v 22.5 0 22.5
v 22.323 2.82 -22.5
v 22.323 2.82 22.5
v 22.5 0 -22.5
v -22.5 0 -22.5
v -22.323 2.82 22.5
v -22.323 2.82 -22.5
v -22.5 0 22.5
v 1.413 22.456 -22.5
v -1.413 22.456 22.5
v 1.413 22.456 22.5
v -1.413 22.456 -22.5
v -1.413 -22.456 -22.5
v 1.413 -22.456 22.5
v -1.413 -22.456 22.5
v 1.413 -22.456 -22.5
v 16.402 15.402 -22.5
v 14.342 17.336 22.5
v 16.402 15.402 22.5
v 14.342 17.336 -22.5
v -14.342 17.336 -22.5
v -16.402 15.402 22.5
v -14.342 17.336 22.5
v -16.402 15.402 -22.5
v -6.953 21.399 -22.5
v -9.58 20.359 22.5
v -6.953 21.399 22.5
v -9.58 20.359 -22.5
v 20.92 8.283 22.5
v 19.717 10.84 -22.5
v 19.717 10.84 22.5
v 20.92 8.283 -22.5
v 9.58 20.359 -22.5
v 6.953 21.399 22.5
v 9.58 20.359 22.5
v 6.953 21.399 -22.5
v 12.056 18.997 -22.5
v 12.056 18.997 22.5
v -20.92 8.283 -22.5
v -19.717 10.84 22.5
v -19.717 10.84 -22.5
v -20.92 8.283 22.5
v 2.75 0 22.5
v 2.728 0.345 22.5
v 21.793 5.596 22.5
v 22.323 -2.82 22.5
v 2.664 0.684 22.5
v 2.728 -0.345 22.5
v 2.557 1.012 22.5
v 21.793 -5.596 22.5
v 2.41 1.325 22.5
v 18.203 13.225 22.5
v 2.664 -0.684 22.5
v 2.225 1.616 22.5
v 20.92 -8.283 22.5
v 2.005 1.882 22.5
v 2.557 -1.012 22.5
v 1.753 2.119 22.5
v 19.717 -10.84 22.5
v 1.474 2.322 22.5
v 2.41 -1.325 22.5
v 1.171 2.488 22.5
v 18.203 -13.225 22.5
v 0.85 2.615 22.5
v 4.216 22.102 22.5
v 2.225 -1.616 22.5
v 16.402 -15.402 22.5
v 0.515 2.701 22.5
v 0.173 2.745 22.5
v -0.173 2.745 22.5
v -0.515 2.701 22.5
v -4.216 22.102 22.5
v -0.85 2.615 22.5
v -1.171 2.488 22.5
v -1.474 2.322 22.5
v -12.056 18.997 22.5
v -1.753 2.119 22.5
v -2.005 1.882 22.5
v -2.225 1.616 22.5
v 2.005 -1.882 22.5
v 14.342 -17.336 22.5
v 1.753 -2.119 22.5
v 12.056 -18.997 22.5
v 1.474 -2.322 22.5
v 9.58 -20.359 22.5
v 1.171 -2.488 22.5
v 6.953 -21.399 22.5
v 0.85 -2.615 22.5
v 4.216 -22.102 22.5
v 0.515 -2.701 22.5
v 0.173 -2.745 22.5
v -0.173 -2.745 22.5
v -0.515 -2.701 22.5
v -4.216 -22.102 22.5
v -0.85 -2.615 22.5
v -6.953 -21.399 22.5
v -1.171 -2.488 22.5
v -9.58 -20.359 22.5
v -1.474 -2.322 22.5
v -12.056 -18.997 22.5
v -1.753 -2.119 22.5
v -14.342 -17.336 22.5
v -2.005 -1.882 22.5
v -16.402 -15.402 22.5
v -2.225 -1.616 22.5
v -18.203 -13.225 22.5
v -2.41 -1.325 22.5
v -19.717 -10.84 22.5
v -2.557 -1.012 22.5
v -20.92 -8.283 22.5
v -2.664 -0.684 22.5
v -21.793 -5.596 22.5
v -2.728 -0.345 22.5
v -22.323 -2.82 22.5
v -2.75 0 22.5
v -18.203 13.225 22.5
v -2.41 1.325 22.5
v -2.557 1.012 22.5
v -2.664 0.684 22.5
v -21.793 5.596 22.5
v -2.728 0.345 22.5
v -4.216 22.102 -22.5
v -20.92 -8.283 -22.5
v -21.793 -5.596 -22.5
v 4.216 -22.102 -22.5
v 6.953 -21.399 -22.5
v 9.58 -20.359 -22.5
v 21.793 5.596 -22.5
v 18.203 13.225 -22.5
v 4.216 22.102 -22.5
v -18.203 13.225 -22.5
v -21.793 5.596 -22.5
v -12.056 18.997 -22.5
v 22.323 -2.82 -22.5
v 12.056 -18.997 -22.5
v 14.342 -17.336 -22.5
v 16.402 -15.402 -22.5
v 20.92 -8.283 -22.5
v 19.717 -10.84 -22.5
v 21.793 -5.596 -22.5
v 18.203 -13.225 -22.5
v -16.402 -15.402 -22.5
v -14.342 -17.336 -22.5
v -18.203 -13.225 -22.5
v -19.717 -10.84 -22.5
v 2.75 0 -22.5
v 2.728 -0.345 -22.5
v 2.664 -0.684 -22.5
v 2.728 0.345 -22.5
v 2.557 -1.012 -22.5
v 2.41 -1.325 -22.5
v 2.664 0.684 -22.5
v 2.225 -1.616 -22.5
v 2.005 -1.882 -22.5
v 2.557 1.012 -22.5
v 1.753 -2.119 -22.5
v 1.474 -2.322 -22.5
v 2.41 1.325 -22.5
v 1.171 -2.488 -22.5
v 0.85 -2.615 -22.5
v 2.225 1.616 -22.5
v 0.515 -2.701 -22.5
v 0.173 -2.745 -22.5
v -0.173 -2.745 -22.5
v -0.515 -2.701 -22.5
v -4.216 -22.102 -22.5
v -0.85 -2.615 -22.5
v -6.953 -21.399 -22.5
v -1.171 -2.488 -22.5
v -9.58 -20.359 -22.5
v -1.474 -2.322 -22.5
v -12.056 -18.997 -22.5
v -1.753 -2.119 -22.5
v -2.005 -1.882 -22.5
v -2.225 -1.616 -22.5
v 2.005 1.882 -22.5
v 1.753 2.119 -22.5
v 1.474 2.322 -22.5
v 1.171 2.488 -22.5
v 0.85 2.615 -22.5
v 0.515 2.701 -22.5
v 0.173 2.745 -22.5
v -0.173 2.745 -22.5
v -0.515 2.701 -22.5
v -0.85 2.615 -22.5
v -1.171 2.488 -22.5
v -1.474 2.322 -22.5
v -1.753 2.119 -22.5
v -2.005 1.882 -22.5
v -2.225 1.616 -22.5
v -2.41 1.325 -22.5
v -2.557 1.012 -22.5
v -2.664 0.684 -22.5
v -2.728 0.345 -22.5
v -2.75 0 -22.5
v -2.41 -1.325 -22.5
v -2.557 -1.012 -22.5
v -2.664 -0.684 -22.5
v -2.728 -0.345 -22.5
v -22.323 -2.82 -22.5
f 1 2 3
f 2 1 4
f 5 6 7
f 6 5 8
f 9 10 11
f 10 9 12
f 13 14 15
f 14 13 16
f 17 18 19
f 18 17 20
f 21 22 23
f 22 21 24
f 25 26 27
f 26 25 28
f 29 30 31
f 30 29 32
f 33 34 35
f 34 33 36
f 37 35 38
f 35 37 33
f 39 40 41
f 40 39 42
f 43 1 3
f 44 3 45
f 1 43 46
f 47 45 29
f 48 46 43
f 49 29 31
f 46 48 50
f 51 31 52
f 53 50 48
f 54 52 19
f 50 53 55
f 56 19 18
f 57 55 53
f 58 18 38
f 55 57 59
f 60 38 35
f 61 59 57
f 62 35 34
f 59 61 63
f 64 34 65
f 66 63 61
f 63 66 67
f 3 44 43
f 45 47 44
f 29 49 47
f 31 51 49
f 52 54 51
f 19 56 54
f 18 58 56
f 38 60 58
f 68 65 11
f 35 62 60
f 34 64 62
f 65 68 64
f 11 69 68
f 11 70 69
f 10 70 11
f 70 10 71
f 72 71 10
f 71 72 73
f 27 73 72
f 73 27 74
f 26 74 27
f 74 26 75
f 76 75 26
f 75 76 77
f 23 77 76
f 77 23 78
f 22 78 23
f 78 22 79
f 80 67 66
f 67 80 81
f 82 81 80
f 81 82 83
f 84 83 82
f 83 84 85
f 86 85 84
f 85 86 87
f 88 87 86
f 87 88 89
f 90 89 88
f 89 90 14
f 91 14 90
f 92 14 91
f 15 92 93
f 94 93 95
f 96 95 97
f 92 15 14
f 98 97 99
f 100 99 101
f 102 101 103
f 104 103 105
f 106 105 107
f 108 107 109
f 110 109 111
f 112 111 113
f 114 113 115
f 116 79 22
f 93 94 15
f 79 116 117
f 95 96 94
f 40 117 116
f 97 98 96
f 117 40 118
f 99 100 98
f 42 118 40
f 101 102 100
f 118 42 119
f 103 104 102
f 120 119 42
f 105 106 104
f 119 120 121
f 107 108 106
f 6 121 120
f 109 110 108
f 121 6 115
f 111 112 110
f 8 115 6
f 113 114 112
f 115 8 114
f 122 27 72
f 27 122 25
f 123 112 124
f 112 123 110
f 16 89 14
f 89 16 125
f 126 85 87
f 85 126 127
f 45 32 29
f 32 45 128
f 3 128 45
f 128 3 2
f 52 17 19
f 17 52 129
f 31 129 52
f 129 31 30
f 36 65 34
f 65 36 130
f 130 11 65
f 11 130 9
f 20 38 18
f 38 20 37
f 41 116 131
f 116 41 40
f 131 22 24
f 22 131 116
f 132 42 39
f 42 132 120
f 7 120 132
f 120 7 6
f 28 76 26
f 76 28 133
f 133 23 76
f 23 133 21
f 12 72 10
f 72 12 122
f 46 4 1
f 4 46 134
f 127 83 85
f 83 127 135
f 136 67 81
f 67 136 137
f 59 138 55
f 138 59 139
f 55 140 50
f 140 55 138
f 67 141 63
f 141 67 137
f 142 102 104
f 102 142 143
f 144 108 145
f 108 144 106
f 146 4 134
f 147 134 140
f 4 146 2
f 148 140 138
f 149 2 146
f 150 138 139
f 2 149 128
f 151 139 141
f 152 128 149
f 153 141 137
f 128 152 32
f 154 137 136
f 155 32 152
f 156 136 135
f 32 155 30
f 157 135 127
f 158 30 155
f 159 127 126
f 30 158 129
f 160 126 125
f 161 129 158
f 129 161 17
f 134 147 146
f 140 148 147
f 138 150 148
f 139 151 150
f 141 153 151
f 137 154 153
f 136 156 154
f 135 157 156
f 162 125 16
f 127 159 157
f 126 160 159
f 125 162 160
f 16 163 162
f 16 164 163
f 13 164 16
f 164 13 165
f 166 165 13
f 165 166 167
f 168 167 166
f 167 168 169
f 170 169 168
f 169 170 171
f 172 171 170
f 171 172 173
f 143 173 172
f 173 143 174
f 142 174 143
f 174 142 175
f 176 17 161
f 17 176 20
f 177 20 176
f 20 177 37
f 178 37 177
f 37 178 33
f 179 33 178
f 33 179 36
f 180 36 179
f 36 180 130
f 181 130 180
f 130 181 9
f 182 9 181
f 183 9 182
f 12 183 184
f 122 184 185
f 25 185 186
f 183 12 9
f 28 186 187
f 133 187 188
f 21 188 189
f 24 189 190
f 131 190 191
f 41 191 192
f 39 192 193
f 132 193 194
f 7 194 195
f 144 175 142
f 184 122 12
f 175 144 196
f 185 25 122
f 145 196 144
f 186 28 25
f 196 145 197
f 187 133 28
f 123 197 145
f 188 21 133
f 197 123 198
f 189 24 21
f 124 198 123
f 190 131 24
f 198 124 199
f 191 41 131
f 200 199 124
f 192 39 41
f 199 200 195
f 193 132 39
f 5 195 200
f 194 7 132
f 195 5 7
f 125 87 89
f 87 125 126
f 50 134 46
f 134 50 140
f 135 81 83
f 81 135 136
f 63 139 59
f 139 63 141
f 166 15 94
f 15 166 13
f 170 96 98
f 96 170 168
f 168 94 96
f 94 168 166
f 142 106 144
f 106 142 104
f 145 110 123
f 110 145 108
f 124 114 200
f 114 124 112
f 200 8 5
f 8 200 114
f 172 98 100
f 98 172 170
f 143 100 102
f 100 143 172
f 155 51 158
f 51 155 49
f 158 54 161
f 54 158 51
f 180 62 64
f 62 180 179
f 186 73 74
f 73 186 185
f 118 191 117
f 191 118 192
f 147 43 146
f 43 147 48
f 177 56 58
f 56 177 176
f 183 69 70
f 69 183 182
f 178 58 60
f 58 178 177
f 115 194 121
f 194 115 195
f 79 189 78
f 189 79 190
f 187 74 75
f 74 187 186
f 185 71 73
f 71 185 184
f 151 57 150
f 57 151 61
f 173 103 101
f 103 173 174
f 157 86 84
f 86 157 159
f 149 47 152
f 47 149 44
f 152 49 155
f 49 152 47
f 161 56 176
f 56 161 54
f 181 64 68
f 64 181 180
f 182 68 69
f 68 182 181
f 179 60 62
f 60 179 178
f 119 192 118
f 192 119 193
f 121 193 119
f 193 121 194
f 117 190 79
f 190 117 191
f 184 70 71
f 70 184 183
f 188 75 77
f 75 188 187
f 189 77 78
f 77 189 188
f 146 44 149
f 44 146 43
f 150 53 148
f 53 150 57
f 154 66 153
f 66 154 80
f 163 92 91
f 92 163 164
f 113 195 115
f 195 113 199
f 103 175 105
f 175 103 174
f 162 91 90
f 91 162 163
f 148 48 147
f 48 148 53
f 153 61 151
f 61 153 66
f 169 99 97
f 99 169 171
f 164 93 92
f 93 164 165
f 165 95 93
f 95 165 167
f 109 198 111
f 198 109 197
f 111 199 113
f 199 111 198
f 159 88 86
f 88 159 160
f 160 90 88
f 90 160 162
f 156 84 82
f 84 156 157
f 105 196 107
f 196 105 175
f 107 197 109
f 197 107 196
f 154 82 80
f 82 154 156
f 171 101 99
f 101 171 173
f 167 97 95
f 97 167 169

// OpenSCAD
$fn = 50;


difference() {
	union() {
		translate(v = [0, 0, -22.5000000000]) {
			cylinder(h = 45, r = 22.5000000000);
		}
	}
	union() {
		translate(v = [0, 0, -100.0000000000]) {
			cylinder(h = 200, r = 2.7500000000);
		}
	}
}
